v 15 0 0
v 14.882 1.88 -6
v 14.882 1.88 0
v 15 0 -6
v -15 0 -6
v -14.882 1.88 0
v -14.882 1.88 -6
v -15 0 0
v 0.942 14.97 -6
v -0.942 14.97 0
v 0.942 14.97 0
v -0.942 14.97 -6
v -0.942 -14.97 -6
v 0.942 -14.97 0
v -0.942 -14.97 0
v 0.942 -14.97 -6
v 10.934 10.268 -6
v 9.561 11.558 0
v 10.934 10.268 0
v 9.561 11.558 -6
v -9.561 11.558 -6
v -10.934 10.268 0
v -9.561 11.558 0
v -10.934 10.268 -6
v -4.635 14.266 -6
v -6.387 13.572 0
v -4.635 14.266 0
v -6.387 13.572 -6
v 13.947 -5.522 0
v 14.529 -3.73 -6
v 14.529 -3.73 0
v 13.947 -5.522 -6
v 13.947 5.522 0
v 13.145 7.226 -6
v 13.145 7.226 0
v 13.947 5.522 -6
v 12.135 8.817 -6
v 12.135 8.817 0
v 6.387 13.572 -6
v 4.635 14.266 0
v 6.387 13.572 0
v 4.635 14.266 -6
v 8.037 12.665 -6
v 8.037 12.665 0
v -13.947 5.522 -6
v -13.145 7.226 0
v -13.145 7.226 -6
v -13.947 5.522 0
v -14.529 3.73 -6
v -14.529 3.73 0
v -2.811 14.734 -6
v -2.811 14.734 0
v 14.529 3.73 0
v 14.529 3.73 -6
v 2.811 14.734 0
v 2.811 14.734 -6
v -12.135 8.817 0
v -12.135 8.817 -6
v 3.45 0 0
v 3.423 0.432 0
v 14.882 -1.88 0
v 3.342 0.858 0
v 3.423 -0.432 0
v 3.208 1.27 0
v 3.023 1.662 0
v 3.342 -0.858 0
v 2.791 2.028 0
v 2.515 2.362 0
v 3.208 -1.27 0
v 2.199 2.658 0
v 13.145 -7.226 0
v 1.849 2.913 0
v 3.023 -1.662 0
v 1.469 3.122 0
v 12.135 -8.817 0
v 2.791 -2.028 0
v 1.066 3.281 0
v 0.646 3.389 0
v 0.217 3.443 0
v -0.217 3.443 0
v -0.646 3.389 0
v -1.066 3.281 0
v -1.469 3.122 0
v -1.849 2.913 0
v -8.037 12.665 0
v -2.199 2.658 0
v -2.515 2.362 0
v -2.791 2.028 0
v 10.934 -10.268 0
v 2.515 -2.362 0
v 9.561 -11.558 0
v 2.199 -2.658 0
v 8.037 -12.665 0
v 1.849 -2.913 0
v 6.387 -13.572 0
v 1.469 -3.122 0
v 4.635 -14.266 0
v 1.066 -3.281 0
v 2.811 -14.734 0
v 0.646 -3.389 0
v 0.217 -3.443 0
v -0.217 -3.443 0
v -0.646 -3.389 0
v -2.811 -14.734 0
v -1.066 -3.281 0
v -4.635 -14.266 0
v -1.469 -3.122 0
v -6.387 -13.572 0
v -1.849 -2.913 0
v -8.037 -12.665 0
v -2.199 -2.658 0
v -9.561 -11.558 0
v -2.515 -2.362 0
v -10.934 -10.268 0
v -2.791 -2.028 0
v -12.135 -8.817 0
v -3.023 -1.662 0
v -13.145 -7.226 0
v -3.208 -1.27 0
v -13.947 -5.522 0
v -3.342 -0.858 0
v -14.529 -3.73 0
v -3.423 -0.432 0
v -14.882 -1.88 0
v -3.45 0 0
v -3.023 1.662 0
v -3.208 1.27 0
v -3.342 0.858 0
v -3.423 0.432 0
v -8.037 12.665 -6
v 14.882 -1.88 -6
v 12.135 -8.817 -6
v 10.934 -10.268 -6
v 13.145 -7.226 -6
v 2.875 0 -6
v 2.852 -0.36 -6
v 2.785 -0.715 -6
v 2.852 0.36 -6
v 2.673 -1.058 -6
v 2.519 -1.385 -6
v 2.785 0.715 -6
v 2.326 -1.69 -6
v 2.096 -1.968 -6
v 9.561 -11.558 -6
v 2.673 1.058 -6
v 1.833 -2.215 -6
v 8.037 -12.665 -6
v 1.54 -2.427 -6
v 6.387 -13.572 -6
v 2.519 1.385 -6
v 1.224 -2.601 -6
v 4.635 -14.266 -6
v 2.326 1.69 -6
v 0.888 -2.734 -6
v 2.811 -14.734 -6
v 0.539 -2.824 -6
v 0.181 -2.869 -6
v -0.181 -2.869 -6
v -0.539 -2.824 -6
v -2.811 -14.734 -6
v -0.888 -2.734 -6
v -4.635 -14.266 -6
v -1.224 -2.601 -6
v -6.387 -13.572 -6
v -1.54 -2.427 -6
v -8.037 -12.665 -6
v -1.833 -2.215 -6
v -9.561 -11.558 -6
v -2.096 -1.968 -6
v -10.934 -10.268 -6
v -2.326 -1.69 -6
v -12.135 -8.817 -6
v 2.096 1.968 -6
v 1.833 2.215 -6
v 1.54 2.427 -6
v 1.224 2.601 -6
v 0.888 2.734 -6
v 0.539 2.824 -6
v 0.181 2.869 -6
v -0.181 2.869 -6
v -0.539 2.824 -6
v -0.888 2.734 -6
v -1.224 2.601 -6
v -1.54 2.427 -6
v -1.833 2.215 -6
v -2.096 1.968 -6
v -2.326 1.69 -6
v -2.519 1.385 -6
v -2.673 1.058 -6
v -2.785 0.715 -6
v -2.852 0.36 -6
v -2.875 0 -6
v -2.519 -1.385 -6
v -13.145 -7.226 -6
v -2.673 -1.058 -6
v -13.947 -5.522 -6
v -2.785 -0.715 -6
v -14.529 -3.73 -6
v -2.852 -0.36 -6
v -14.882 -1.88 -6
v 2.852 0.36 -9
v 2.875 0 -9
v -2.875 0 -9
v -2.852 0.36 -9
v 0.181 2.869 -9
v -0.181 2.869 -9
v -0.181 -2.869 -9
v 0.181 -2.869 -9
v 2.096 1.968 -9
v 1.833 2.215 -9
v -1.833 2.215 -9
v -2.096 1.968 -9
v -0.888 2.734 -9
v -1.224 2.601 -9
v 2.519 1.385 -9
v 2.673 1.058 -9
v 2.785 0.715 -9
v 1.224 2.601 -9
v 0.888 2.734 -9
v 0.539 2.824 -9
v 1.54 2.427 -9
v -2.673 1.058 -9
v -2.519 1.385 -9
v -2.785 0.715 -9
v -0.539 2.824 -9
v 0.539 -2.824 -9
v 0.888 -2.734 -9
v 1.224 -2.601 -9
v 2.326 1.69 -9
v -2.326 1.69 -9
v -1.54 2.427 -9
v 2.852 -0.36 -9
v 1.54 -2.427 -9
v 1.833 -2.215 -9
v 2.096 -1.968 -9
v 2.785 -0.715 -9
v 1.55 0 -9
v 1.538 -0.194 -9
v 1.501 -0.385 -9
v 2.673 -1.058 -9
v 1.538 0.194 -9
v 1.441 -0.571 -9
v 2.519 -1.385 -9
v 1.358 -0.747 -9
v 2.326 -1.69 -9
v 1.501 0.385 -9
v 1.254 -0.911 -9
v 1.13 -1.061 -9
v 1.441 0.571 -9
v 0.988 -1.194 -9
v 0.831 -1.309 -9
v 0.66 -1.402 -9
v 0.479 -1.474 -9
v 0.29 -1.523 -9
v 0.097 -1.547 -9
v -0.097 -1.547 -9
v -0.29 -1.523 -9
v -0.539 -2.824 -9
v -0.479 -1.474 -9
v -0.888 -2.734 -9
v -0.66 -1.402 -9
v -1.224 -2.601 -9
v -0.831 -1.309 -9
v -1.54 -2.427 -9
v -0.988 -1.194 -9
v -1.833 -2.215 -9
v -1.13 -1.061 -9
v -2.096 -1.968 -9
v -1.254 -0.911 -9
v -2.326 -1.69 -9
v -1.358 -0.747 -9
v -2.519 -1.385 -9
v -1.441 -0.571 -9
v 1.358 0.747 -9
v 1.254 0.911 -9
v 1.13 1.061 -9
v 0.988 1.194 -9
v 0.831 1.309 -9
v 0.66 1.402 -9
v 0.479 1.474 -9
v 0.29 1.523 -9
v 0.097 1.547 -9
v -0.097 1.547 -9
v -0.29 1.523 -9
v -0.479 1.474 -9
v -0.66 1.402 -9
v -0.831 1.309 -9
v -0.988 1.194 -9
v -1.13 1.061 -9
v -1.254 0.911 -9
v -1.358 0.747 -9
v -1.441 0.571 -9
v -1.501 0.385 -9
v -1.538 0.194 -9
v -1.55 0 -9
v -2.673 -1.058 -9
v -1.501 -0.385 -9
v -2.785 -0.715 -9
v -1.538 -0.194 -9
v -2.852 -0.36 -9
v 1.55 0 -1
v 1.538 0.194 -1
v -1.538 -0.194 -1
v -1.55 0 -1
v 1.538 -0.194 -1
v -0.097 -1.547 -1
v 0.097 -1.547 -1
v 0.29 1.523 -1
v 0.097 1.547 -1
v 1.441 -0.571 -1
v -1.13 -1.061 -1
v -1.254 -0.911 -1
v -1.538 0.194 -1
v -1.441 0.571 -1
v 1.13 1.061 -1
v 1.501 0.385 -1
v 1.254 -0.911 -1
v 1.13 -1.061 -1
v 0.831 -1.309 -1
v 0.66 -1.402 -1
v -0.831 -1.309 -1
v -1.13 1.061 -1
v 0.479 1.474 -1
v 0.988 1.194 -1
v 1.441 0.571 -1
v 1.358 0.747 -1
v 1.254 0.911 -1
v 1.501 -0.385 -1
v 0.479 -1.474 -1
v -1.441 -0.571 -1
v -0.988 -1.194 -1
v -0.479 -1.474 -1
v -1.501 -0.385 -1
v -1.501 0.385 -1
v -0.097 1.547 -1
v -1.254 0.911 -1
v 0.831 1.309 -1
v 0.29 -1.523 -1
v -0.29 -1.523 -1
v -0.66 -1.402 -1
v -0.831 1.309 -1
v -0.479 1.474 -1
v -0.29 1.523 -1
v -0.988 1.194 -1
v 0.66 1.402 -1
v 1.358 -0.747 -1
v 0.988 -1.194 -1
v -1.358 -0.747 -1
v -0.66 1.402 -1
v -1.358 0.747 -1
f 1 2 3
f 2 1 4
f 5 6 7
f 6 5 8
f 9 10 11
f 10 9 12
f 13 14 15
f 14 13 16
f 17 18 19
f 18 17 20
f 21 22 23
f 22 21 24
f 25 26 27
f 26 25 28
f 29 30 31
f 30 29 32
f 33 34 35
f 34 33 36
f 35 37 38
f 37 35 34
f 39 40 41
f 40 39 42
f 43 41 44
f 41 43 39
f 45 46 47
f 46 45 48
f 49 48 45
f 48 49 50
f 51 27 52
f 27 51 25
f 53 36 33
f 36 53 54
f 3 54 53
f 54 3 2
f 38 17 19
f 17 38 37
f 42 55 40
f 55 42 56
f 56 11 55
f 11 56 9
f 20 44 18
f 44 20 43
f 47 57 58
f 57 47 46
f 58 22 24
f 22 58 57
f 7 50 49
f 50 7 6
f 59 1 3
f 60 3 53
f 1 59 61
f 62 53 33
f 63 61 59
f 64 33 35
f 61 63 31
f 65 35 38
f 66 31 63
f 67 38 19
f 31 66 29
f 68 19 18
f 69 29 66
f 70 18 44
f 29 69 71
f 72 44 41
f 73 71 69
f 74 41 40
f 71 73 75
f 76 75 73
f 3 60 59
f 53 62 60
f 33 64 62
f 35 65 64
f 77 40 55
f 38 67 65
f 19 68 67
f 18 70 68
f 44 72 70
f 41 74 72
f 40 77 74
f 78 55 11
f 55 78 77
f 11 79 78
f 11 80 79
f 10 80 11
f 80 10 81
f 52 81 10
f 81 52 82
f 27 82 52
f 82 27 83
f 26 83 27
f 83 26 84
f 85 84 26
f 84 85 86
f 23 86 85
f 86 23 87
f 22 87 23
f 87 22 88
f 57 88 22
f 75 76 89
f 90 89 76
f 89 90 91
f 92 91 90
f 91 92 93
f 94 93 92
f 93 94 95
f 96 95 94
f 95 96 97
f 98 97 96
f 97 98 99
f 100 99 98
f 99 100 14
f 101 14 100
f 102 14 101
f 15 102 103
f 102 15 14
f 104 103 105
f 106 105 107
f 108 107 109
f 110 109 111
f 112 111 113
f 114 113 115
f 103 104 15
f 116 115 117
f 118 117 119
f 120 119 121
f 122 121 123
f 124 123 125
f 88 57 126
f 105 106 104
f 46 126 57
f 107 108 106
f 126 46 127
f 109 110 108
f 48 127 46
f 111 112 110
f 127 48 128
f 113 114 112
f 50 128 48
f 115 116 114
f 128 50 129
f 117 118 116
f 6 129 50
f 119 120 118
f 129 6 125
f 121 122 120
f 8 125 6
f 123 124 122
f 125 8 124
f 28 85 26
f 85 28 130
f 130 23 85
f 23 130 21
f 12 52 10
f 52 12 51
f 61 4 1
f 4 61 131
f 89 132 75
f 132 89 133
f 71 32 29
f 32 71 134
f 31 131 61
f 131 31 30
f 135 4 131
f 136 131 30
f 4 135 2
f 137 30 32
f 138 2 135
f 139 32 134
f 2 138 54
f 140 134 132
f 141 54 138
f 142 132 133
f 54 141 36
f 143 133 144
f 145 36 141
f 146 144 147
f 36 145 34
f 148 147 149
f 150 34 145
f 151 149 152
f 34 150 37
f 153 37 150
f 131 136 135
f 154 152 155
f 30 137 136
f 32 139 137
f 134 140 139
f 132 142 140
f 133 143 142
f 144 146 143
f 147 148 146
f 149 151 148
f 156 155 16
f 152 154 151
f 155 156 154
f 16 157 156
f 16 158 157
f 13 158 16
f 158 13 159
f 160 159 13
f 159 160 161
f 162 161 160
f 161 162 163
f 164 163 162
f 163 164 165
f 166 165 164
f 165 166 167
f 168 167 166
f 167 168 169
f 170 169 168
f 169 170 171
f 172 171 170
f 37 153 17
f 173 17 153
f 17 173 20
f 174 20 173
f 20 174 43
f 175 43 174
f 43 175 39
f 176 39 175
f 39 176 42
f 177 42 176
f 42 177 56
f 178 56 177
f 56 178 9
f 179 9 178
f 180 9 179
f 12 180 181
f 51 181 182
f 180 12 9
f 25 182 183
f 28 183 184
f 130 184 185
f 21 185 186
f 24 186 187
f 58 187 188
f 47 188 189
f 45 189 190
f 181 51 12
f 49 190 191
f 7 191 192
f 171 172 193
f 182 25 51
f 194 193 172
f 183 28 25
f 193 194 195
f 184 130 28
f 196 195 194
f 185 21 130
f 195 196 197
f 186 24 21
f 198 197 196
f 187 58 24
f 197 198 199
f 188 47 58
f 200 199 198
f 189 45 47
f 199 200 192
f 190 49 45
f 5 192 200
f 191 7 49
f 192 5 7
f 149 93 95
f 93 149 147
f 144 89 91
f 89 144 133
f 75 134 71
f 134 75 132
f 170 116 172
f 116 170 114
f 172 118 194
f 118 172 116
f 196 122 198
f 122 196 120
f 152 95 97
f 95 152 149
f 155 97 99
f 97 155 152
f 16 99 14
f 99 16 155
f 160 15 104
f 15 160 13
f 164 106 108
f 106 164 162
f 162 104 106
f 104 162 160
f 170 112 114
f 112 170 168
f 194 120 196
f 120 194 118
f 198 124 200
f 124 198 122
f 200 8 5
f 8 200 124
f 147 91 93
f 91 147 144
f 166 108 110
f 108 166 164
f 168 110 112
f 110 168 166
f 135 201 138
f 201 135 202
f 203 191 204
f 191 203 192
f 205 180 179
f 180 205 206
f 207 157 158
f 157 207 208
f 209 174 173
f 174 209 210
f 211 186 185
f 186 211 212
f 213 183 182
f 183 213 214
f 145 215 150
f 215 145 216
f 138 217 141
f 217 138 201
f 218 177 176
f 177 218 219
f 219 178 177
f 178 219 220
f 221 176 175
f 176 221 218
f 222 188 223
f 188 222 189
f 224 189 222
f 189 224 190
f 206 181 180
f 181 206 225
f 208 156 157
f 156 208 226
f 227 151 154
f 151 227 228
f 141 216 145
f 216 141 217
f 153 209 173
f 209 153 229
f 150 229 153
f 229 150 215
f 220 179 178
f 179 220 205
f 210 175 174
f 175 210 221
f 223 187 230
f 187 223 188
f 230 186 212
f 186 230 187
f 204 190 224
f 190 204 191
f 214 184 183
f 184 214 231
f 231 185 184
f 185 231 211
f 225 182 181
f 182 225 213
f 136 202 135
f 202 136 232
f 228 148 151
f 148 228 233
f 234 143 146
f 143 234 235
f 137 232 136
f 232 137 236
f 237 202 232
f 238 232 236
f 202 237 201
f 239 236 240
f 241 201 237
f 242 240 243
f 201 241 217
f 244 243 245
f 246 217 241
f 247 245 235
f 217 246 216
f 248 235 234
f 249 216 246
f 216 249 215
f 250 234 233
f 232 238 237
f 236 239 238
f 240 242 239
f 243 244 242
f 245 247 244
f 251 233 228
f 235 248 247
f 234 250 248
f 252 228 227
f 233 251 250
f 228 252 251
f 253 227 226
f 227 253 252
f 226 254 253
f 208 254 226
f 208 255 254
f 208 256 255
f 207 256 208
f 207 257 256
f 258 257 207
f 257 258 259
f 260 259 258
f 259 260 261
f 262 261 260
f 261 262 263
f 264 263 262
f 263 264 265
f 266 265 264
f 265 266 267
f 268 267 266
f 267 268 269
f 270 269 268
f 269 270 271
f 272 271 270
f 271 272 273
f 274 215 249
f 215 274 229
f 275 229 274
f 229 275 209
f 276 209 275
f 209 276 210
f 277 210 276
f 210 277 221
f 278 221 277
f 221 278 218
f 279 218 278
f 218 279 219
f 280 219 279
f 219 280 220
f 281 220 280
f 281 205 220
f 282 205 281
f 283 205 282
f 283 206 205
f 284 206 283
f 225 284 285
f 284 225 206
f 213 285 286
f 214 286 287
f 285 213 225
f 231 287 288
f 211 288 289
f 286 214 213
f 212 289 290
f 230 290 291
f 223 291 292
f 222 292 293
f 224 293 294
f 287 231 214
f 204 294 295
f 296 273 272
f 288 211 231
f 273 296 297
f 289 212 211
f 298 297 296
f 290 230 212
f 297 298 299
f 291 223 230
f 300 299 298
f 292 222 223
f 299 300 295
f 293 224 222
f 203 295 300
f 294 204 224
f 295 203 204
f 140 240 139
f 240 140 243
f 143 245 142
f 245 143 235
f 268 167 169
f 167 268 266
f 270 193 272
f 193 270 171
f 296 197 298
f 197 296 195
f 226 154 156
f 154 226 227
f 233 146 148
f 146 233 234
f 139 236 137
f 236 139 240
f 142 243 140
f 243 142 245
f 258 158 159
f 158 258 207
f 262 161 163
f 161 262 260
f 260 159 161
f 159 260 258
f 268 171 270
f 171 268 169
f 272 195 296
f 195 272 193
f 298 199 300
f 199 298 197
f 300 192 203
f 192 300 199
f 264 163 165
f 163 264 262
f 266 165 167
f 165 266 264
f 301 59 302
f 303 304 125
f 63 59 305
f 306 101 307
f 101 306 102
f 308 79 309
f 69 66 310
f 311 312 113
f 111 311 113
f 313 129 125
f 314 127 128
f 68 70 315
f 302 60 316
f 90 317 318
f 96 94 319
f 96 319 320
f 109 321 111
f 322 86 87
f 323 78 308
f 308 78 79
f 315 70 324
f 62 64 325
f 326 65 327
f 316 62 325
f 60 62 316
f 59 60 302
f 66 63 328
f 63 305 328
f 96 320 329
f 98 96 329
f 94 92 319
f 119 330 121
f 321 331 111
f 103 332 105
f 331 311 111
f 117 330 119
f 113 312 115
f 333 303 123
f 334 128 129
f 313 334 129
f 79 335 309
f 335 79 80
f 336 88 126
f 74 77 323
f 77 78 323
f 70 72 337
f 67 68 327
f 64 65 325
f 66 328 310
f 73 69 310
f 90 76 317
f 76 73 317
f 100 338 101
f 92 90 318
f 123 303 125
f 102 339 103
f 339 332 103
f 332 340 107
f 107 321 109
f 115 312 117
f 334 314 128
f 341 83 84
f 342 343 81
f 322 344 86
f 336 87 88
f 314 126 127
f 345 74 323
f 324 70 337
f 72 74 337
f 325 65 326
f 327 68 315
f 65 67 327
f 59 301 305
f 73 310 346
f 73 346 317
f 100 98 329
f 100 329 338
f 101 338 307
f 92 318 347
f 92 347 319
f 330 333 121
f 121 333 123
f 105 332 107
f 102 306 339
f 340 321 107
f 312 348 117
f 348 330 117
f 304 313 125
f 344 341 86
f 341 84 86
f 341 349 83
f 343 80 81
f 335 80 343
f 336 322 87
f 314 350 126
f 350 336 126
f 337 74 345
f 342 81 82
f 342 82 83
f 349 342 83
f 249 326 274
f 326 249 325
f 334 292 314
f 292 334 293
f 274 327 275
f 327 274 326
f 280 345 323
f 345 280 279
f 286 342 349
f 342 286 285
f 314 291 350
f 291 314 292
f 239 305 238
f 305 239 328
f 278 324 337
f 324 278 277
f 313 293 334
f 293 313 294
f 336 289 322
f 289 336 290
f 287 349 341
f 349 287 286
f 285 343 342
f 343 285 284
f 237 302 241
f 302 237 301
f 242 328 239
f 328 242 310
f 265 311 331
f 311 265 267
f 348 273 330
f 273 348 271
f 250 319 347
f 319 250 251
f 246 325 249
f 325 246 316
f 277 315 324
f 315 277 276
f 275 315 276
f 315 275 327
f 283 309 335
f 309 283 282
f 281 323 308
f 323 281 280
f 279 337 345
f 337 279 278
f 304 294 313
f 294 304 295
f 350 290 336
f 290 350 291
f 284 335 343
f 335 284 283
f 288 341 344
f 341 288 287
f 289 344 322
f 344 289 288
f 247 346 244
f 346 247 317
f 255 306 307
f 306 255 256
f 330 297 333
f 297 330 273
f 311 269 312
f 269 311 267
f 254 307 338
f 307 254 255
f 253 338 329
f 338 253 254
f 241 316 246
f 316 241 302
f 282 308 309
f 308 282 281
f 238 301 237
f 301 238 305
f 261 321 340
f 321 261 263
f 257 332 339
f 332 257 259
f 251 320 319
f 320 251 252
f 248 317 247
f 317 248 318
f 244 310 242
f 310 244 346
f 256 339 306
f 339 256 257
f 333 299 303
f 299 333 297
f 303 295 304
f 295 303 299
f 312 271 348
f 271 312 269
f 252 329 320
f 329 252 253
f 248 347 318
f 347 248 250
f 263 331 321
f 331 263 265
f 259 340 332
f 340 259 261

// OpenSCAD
$fn = 50;


difference() {
	union() {
		translate(v = [0, 0, -6.0000000000]) {
			cylinder(h = 6, r = 15.0000000000);
		}
		translate(v = [0, 0, -9.0000000000]) {
			cylinder(h = 9, r = 2.8750000000);
		}
	}
	union() {
		translate(v = [0, 0, 0]) {
			rotate(a = [0, 0, 0]) {
				difference() {
					union() {
						translate(v = [0, 0, -9.0000000000]) {
							cylinder(h = 9, r = 1.2500000000);
						}
						translate(v = [0, 0, -1.0000000000]) {
							cylinder(h = 1.0000000000, r1 = 1.5500000000, r2 = 3.4500000000);
						}
						translate(v = [0, 0, -9.0000000000]) {
							cylinder(h = 9, r = 1.5500000000);
						}
						translate(v = [0, 0, -9.0000000000]) {
							cylinder(h = 9, r = 1.2500000000);
						}
					}
					union();
				}
			}
		}
	}
}
